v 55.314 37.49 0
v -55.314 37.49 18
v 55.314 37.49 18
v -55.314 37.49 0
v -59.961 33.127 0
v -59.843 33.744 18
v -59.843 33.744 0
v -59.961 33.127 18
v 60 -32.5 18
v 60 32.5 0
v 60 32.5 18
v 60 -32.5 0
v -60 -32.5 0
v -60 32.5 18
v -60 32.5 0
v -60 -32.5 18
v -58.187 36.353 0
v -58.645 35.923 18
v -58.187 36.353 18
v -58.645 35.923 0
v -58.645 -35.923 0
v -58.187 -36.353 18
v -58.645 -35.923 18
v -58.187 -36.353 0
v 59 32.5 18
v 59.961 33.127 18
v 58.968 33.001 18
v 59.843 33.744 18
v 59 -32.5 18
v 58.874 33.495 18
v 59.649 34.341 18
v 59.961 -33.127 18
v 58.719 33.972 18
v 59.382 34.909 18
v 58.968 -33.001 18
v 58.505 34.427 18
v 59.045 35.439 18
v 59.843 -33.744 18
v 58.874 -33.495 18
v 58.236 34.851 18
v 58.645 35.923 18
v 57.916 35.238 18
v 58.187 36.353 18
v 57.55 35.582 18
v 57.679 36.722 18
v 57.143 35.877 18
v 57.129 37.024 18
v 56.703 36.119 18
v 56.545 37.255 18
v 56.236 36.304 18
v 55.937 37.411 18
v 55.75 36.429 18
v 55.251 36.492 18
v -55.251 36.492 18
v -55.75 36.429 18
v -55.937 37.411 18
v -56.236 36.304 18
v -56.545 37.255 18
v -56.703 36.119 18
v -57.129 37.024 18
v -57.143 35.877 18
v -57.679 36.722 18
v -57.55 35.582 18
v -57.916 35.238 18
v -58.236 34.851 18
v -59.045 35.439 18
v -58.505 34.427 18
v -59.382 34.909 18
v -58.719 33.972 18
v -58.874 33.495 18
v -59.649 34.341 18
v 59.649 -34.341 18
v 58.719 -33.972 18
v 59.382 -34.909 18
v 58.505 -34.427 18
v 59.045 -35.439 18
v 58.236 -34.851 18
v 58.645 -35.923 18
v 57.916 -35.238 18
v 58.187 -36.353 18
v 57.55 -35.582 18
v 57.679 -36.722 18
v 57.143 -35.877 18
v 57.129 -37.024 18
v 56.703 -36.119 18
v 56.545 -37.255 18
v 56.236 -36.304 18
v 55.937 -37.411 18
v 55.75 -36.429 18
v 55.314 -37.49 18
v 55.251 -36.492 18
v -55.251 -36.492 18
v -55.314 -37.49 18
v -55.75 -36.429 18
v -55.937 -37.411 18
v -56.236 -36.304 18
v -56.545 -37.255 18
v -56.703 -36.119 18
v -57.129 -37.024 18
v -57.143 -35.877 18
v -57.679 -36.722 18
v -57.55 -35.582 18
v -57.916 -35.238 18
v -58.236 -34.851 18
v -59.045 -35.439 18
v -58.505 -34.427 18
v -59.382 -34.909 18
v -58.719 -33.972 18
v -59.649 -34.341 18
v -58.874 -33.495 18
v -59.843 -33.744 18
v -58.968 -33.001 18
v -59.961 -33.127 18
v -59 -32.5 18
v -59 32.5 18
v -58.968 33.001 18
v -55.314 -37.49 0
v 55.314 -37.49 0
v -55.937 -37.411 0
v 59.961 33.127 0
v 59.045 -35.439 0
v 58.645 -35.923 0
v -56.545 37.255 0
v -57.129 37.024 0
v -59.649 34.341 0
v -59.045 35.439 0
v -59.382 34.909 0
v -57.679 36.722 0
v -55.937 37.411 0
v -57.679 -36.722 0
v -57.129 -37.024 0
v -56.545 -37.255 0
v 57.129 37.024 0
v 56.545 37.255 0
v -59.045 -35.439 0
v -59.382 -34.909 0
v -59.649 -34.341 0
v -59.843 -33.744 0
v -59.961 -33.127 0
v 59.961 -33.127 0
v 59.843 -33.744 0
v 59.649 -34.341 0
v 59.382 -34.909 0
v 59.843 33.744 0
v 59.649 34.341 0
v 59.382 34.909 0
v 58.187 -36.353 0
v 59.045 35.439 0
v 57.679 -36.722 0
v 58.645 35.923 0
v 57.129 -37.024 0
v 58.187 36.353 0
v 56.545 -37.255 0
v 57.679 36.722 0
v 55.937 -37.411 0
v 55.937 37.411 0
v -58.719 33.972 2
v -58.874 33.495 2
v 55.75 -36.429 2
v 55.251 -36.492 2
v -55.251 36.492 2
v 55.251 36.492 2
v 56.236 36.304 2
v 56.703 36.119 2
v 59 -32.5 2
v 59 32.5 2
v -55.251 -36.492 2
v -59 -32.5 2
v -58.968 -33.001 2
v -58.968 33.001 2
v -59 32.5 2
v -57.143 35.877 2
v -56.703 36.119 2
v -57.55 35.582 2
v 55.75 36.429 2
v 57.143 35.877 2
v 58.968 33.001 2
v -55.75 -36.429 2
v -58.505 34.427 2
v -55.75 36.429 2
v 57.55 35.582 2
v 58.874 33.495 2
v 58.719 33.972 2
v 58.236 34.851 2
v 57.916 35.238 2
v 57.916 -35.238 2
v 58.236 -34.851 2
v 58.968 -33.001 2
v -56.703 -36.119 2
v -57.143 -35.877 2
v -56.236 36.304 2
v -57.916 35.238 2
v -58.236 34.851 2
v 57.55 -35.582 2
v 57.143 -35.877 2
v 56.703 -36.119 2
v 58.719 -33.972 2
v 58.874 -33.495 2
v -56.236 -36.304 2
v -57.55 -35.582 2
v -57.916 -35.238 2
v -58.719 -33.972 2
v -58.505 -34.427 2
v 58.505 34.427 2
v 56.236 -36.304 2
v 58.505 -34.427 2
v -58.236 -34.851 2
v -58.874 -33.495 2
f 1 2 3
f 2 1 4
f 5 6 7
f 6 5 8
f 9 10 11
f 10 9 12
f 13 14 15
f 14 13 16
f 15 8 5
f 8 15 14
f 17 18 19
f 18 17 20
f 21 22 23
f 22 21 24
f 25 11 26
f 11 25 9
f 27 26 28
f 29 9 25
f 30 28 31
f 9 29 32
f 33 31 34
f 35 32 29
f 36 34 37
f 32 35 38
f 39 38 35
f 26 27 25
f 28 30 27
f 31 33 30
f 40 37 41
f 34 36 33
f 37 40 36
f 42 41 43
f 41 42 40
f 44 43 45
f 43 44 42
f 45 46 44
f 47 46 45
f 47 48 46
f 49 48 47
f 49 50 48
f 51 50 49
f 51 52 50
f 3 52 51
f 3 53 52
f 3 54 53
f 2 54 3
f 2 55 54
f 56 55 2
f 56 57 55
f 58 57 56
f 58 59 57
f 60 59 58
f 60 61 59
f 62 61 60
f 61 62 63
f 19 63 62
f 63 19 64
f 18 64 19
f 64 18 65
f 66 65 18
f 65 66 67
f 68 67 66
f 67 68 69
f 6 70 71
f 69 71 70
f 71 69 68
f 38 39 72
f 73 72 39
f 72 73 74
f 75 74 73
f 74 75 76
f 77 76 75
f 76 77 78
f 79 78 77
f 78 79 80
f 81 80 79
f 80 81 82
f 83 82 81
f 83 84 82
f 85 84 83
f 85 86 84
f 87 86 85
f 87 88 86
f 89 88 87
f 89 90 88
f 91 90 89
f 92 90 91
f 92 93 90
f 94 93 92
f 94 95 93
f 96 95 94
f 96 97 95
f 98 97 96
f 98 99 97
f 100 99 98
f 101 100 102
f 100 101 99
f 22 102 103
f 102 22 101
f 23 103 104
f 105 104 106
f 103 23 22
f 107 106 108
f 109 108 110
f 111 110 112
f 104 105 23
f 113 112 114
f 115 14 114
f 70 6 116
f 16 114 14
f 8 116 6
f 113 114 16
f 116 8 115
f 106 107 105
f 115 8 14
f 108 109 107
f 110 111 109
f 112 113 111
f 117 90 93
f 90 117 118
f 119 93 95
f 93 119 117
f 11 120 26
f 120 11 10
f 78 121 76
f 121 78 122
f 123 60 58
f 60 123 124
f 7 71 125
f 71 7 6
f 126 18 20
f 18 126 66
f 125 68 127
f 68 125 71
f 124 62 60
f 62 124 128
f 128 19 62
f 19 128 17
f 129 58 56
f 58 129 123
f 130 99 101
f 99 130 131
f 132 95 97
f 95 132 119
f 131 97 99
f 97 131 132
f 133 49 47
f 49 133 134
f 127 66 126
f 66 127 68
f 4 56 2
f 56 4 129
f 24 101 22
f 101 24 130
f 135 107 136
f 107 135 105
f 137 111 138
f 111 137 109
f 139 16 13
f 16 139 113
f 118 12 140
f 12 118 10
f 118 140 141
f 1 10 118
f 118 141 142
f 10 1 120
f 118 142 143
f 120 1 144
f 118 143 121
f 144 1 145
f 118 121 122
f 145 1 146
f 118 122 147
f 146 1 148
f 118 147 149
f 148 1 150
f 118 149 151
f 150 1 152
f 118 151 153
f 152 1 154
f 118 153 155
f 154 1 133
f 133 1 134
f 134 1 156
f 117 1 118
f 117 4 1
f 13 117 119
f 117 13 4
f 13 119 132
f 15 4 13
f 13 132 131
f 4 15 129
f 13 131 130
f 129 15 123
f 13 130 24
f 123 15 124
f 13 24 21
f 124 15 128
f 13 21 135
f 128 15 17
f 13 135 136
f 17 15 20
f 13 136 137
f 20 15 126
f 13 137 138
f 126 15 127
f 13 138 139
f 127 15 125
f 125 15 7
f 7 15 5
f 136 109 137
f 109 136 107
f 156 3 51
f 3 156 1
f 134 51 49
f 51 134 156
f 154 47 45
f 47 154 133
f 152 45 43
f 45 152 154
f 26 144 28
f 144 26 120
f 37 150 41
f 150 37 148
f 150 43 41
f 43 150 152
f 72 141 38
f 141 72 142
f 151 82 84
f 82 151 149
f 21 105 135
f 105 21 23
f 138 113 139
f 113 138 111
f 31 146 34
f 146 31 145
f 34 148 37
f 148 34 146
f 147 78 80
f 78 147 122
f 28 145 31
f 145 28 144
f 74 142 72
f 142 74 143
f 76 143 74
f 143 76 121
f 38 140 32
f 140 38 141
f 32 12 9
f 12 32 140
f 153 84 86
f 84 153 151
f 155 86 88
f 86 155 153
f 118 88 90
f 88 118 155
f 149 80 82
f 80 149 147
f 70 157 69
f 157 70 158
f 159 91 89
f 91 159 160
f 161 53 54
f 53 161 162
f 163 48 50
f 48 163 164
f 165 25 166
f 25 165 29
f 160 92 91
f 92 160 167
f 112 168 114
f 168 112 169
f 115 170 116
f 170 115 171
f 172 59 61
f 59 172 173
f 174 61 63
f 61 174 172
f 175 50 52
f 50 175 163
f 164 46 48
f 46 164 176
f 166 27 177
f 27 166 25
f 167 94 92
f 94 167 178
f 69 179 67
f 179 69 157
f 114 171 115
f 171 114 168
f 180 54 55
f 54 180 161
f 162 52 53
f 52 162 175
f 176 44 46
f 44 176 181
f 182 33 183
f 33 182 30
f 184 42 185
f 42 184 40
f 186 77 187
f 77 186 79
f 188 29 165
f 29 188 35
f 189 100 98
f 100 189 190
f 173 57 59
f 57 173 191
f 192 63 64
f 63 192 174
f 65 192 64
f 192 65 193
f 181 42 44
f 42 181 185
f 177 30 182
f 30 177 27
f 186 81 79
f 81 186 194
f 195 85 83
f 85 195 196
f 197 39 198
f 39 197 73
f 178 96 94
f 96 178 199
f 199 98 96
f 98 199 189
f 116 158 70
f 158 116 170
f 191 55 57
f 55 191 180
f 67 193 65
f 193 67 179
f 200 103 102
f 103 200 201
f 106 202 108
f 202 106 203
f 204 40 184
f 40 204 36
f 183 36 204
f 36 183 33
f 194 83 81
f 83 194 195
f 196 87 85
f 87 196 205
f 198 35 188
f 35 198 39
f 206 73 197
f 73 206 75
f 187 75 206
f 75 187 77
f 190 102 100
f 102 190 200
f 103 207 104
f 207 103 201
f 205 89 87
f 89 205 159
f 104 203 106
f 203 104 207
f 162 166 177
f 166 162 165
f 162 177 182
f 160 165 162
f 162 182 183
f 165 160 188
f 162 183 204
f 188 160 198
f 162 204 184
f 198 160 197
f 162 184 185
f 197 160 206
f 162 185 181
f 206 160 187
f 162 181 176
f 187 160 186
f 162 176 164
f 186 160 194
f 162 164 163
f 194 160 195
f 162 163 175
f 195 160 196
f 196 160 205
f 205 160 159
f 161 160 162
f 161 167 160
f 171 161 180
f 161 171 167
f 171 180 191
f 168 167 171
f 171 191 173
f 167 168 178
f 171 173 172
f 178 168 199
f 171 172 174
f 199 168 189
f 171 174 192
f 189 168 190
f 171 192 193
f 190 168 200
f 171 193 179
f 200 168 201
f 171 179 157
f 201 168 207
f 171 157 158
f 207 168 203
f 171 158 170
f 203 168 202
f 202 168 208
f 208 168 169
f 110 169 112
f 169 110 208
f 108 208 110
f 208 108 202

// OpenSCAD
$fn = 50;


difference() {
	union() {
		hull() {
			translate(v = [-55.0000000000, 32.5000000000, 0]) {
				cylinder(h = 18, r = 5);
			}
			translate(v = [55.0000000000, 32.5000000000, 0]) {
				cylinder(h = 18, r = 5);
			}
			translate(v = [-55.0000000000, -32.5000000000, 0]) {
				cylinder(h = 18, r = 5);
			}
			translate(v = [55.0000000000, -32.5000000000, 0]) {
				cylinder(h = 18, r = 5);
			}
		}
	}
	union() {
		translate(v = [0, 0, 2]) {
			hull() {
				translate(v = [-55.0000000000, 32.5000000000, 0]) {
					cylinder(h = 16, r = 4);
				}
				translate(v = [55.0000000000, 32.5000000000, 0]) {
					cylinder(h = 16, r = 4);
				}
				translate(v = [-55.0000000000, -32.5000000000, 0]) {
					cylinder(h = 16, r = 4);
				}
				translate(v = [55.0000000000, -32.5000000000, 0]) {
					cylinder(h = 16, r = 4);
				}
			}
		}
	}
}
